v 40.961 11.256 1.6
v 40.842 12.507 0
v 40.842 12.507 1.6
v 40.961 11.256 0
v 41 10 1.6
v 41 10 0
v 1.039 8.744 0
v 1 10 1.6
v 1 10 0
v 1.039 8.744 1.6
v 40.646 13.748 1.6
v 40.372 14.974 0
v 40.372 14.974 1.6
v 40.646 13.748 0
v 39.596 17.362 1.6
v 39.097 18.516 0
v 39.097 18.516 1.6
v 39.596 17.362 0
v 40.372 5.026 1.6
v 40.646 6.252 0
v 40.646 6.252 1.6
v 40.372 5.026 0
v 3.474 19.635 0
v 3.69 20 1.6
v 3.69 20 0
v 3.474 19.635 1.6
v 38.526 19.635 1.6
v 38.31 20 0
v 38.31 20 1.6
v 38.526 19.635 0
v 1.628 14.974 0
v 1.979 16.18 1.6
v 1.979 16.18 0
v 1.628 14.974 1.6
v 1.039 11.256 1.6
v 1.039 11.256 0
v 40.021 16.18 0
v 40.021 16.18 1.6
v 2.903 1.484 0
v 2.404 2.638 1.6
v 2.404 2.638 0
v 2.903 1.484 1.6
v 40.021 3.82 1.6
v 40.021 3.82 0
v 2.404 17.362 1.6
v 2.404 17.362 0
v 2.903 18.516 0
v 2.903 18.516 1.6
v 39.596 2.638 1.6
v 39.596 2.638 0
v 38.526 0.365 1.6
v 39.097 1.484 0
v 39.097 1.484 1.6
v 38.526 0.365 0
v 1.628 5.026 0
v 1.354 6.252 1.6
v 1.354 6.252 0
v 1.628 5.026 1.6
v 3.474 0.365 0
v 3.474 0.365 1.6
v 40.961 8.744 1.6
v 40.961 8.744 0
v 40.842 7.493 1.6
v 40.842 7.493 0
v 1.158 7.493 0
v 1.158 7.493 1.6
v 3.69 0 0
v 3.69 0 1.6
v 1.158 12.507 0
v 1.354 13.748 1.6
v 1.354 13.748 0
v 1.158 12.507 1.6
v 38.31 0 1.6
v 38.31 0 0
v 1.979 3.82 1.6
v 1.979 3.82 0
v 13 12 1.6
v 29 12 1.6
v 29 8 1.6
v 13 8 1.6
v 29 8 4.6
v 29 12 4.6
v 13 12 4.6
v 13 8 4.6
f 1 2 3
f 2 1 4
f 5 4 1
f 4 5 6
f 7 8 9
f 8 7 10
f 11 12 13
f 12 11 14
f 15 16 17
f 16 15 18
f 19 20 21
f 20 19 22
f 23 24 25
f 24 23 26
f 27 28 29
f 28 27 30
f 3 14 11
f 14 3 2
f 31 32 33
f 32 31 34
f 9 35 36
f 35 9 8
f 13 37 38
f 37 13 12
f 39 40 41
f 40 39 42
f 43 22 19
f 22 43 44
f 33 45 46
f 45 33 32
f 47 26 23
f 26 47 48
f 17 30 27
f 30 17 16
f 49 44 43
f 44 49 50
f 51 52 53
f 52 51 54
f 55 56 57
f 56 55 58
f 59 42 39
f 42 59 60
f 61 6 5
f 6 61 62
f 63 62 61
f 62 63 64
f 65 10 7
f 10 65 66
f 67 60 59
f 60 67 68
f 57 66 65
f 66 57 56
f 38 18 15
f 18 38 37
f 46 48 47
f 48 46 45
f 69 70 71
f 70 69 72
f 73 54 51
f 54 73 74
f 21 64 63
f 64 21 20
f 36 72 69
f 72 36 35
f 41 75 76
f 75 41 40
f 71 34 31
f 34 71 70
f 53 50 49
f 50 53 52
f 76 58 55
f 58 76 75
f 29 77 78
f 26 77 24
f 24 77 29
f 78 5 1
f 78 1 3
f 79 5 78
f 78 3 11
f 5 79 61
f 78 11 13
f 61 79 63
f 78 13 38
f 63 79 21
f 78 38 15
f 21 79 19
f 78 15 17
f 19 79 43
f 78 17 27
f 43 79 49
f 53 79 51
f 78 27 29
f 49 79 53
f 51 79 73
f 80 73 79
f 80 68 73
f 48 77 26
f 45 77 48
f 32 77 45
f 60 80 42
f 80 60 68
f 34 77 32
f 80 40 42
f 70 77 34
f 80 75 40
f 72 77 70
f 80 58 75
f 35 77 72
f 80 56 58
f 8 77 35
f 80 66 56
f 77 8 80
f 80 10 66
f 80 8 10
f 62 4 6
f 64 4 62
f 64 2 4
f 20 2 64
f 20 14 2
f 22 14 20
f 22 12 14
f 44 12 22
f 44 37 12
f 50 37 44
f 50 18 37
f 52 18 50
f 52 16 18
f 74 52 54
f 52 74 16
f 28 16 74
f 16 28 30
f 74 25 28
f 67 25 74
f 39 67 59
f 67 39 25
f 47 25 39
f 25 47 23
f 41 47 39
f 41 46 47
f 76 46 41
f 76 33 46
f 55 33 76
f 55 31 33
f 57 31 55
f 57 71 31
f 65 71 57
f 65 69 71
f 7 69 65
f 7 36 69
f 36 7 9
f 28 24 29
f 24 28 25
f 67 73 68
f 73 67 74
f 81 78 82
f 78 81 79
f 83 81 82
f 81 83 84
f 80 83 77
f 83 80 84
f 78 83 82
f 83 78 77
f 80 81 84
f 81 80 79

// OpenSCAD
// The hole:
width = 16;
height = 4;
depth = 3;

// The base to cover the hole:
base_width = 42;
base_height = 20;
base_thickness = 1.6;

module plug() {
    color("lightgreen")
      cube([width, height, depth]);
}

module base() {
    intersection() {
        translate([base_width/2, base_height/2, -base_thickness])
          cylinder(h=3*base_thickness, r=base_height);
        cube([base_width, base_height, base_thickness]);
    }
}

$fn=100;

base();
translate([base_width/2 - width/2, base_height/2 - height/2, base_thickness])
  plug();
